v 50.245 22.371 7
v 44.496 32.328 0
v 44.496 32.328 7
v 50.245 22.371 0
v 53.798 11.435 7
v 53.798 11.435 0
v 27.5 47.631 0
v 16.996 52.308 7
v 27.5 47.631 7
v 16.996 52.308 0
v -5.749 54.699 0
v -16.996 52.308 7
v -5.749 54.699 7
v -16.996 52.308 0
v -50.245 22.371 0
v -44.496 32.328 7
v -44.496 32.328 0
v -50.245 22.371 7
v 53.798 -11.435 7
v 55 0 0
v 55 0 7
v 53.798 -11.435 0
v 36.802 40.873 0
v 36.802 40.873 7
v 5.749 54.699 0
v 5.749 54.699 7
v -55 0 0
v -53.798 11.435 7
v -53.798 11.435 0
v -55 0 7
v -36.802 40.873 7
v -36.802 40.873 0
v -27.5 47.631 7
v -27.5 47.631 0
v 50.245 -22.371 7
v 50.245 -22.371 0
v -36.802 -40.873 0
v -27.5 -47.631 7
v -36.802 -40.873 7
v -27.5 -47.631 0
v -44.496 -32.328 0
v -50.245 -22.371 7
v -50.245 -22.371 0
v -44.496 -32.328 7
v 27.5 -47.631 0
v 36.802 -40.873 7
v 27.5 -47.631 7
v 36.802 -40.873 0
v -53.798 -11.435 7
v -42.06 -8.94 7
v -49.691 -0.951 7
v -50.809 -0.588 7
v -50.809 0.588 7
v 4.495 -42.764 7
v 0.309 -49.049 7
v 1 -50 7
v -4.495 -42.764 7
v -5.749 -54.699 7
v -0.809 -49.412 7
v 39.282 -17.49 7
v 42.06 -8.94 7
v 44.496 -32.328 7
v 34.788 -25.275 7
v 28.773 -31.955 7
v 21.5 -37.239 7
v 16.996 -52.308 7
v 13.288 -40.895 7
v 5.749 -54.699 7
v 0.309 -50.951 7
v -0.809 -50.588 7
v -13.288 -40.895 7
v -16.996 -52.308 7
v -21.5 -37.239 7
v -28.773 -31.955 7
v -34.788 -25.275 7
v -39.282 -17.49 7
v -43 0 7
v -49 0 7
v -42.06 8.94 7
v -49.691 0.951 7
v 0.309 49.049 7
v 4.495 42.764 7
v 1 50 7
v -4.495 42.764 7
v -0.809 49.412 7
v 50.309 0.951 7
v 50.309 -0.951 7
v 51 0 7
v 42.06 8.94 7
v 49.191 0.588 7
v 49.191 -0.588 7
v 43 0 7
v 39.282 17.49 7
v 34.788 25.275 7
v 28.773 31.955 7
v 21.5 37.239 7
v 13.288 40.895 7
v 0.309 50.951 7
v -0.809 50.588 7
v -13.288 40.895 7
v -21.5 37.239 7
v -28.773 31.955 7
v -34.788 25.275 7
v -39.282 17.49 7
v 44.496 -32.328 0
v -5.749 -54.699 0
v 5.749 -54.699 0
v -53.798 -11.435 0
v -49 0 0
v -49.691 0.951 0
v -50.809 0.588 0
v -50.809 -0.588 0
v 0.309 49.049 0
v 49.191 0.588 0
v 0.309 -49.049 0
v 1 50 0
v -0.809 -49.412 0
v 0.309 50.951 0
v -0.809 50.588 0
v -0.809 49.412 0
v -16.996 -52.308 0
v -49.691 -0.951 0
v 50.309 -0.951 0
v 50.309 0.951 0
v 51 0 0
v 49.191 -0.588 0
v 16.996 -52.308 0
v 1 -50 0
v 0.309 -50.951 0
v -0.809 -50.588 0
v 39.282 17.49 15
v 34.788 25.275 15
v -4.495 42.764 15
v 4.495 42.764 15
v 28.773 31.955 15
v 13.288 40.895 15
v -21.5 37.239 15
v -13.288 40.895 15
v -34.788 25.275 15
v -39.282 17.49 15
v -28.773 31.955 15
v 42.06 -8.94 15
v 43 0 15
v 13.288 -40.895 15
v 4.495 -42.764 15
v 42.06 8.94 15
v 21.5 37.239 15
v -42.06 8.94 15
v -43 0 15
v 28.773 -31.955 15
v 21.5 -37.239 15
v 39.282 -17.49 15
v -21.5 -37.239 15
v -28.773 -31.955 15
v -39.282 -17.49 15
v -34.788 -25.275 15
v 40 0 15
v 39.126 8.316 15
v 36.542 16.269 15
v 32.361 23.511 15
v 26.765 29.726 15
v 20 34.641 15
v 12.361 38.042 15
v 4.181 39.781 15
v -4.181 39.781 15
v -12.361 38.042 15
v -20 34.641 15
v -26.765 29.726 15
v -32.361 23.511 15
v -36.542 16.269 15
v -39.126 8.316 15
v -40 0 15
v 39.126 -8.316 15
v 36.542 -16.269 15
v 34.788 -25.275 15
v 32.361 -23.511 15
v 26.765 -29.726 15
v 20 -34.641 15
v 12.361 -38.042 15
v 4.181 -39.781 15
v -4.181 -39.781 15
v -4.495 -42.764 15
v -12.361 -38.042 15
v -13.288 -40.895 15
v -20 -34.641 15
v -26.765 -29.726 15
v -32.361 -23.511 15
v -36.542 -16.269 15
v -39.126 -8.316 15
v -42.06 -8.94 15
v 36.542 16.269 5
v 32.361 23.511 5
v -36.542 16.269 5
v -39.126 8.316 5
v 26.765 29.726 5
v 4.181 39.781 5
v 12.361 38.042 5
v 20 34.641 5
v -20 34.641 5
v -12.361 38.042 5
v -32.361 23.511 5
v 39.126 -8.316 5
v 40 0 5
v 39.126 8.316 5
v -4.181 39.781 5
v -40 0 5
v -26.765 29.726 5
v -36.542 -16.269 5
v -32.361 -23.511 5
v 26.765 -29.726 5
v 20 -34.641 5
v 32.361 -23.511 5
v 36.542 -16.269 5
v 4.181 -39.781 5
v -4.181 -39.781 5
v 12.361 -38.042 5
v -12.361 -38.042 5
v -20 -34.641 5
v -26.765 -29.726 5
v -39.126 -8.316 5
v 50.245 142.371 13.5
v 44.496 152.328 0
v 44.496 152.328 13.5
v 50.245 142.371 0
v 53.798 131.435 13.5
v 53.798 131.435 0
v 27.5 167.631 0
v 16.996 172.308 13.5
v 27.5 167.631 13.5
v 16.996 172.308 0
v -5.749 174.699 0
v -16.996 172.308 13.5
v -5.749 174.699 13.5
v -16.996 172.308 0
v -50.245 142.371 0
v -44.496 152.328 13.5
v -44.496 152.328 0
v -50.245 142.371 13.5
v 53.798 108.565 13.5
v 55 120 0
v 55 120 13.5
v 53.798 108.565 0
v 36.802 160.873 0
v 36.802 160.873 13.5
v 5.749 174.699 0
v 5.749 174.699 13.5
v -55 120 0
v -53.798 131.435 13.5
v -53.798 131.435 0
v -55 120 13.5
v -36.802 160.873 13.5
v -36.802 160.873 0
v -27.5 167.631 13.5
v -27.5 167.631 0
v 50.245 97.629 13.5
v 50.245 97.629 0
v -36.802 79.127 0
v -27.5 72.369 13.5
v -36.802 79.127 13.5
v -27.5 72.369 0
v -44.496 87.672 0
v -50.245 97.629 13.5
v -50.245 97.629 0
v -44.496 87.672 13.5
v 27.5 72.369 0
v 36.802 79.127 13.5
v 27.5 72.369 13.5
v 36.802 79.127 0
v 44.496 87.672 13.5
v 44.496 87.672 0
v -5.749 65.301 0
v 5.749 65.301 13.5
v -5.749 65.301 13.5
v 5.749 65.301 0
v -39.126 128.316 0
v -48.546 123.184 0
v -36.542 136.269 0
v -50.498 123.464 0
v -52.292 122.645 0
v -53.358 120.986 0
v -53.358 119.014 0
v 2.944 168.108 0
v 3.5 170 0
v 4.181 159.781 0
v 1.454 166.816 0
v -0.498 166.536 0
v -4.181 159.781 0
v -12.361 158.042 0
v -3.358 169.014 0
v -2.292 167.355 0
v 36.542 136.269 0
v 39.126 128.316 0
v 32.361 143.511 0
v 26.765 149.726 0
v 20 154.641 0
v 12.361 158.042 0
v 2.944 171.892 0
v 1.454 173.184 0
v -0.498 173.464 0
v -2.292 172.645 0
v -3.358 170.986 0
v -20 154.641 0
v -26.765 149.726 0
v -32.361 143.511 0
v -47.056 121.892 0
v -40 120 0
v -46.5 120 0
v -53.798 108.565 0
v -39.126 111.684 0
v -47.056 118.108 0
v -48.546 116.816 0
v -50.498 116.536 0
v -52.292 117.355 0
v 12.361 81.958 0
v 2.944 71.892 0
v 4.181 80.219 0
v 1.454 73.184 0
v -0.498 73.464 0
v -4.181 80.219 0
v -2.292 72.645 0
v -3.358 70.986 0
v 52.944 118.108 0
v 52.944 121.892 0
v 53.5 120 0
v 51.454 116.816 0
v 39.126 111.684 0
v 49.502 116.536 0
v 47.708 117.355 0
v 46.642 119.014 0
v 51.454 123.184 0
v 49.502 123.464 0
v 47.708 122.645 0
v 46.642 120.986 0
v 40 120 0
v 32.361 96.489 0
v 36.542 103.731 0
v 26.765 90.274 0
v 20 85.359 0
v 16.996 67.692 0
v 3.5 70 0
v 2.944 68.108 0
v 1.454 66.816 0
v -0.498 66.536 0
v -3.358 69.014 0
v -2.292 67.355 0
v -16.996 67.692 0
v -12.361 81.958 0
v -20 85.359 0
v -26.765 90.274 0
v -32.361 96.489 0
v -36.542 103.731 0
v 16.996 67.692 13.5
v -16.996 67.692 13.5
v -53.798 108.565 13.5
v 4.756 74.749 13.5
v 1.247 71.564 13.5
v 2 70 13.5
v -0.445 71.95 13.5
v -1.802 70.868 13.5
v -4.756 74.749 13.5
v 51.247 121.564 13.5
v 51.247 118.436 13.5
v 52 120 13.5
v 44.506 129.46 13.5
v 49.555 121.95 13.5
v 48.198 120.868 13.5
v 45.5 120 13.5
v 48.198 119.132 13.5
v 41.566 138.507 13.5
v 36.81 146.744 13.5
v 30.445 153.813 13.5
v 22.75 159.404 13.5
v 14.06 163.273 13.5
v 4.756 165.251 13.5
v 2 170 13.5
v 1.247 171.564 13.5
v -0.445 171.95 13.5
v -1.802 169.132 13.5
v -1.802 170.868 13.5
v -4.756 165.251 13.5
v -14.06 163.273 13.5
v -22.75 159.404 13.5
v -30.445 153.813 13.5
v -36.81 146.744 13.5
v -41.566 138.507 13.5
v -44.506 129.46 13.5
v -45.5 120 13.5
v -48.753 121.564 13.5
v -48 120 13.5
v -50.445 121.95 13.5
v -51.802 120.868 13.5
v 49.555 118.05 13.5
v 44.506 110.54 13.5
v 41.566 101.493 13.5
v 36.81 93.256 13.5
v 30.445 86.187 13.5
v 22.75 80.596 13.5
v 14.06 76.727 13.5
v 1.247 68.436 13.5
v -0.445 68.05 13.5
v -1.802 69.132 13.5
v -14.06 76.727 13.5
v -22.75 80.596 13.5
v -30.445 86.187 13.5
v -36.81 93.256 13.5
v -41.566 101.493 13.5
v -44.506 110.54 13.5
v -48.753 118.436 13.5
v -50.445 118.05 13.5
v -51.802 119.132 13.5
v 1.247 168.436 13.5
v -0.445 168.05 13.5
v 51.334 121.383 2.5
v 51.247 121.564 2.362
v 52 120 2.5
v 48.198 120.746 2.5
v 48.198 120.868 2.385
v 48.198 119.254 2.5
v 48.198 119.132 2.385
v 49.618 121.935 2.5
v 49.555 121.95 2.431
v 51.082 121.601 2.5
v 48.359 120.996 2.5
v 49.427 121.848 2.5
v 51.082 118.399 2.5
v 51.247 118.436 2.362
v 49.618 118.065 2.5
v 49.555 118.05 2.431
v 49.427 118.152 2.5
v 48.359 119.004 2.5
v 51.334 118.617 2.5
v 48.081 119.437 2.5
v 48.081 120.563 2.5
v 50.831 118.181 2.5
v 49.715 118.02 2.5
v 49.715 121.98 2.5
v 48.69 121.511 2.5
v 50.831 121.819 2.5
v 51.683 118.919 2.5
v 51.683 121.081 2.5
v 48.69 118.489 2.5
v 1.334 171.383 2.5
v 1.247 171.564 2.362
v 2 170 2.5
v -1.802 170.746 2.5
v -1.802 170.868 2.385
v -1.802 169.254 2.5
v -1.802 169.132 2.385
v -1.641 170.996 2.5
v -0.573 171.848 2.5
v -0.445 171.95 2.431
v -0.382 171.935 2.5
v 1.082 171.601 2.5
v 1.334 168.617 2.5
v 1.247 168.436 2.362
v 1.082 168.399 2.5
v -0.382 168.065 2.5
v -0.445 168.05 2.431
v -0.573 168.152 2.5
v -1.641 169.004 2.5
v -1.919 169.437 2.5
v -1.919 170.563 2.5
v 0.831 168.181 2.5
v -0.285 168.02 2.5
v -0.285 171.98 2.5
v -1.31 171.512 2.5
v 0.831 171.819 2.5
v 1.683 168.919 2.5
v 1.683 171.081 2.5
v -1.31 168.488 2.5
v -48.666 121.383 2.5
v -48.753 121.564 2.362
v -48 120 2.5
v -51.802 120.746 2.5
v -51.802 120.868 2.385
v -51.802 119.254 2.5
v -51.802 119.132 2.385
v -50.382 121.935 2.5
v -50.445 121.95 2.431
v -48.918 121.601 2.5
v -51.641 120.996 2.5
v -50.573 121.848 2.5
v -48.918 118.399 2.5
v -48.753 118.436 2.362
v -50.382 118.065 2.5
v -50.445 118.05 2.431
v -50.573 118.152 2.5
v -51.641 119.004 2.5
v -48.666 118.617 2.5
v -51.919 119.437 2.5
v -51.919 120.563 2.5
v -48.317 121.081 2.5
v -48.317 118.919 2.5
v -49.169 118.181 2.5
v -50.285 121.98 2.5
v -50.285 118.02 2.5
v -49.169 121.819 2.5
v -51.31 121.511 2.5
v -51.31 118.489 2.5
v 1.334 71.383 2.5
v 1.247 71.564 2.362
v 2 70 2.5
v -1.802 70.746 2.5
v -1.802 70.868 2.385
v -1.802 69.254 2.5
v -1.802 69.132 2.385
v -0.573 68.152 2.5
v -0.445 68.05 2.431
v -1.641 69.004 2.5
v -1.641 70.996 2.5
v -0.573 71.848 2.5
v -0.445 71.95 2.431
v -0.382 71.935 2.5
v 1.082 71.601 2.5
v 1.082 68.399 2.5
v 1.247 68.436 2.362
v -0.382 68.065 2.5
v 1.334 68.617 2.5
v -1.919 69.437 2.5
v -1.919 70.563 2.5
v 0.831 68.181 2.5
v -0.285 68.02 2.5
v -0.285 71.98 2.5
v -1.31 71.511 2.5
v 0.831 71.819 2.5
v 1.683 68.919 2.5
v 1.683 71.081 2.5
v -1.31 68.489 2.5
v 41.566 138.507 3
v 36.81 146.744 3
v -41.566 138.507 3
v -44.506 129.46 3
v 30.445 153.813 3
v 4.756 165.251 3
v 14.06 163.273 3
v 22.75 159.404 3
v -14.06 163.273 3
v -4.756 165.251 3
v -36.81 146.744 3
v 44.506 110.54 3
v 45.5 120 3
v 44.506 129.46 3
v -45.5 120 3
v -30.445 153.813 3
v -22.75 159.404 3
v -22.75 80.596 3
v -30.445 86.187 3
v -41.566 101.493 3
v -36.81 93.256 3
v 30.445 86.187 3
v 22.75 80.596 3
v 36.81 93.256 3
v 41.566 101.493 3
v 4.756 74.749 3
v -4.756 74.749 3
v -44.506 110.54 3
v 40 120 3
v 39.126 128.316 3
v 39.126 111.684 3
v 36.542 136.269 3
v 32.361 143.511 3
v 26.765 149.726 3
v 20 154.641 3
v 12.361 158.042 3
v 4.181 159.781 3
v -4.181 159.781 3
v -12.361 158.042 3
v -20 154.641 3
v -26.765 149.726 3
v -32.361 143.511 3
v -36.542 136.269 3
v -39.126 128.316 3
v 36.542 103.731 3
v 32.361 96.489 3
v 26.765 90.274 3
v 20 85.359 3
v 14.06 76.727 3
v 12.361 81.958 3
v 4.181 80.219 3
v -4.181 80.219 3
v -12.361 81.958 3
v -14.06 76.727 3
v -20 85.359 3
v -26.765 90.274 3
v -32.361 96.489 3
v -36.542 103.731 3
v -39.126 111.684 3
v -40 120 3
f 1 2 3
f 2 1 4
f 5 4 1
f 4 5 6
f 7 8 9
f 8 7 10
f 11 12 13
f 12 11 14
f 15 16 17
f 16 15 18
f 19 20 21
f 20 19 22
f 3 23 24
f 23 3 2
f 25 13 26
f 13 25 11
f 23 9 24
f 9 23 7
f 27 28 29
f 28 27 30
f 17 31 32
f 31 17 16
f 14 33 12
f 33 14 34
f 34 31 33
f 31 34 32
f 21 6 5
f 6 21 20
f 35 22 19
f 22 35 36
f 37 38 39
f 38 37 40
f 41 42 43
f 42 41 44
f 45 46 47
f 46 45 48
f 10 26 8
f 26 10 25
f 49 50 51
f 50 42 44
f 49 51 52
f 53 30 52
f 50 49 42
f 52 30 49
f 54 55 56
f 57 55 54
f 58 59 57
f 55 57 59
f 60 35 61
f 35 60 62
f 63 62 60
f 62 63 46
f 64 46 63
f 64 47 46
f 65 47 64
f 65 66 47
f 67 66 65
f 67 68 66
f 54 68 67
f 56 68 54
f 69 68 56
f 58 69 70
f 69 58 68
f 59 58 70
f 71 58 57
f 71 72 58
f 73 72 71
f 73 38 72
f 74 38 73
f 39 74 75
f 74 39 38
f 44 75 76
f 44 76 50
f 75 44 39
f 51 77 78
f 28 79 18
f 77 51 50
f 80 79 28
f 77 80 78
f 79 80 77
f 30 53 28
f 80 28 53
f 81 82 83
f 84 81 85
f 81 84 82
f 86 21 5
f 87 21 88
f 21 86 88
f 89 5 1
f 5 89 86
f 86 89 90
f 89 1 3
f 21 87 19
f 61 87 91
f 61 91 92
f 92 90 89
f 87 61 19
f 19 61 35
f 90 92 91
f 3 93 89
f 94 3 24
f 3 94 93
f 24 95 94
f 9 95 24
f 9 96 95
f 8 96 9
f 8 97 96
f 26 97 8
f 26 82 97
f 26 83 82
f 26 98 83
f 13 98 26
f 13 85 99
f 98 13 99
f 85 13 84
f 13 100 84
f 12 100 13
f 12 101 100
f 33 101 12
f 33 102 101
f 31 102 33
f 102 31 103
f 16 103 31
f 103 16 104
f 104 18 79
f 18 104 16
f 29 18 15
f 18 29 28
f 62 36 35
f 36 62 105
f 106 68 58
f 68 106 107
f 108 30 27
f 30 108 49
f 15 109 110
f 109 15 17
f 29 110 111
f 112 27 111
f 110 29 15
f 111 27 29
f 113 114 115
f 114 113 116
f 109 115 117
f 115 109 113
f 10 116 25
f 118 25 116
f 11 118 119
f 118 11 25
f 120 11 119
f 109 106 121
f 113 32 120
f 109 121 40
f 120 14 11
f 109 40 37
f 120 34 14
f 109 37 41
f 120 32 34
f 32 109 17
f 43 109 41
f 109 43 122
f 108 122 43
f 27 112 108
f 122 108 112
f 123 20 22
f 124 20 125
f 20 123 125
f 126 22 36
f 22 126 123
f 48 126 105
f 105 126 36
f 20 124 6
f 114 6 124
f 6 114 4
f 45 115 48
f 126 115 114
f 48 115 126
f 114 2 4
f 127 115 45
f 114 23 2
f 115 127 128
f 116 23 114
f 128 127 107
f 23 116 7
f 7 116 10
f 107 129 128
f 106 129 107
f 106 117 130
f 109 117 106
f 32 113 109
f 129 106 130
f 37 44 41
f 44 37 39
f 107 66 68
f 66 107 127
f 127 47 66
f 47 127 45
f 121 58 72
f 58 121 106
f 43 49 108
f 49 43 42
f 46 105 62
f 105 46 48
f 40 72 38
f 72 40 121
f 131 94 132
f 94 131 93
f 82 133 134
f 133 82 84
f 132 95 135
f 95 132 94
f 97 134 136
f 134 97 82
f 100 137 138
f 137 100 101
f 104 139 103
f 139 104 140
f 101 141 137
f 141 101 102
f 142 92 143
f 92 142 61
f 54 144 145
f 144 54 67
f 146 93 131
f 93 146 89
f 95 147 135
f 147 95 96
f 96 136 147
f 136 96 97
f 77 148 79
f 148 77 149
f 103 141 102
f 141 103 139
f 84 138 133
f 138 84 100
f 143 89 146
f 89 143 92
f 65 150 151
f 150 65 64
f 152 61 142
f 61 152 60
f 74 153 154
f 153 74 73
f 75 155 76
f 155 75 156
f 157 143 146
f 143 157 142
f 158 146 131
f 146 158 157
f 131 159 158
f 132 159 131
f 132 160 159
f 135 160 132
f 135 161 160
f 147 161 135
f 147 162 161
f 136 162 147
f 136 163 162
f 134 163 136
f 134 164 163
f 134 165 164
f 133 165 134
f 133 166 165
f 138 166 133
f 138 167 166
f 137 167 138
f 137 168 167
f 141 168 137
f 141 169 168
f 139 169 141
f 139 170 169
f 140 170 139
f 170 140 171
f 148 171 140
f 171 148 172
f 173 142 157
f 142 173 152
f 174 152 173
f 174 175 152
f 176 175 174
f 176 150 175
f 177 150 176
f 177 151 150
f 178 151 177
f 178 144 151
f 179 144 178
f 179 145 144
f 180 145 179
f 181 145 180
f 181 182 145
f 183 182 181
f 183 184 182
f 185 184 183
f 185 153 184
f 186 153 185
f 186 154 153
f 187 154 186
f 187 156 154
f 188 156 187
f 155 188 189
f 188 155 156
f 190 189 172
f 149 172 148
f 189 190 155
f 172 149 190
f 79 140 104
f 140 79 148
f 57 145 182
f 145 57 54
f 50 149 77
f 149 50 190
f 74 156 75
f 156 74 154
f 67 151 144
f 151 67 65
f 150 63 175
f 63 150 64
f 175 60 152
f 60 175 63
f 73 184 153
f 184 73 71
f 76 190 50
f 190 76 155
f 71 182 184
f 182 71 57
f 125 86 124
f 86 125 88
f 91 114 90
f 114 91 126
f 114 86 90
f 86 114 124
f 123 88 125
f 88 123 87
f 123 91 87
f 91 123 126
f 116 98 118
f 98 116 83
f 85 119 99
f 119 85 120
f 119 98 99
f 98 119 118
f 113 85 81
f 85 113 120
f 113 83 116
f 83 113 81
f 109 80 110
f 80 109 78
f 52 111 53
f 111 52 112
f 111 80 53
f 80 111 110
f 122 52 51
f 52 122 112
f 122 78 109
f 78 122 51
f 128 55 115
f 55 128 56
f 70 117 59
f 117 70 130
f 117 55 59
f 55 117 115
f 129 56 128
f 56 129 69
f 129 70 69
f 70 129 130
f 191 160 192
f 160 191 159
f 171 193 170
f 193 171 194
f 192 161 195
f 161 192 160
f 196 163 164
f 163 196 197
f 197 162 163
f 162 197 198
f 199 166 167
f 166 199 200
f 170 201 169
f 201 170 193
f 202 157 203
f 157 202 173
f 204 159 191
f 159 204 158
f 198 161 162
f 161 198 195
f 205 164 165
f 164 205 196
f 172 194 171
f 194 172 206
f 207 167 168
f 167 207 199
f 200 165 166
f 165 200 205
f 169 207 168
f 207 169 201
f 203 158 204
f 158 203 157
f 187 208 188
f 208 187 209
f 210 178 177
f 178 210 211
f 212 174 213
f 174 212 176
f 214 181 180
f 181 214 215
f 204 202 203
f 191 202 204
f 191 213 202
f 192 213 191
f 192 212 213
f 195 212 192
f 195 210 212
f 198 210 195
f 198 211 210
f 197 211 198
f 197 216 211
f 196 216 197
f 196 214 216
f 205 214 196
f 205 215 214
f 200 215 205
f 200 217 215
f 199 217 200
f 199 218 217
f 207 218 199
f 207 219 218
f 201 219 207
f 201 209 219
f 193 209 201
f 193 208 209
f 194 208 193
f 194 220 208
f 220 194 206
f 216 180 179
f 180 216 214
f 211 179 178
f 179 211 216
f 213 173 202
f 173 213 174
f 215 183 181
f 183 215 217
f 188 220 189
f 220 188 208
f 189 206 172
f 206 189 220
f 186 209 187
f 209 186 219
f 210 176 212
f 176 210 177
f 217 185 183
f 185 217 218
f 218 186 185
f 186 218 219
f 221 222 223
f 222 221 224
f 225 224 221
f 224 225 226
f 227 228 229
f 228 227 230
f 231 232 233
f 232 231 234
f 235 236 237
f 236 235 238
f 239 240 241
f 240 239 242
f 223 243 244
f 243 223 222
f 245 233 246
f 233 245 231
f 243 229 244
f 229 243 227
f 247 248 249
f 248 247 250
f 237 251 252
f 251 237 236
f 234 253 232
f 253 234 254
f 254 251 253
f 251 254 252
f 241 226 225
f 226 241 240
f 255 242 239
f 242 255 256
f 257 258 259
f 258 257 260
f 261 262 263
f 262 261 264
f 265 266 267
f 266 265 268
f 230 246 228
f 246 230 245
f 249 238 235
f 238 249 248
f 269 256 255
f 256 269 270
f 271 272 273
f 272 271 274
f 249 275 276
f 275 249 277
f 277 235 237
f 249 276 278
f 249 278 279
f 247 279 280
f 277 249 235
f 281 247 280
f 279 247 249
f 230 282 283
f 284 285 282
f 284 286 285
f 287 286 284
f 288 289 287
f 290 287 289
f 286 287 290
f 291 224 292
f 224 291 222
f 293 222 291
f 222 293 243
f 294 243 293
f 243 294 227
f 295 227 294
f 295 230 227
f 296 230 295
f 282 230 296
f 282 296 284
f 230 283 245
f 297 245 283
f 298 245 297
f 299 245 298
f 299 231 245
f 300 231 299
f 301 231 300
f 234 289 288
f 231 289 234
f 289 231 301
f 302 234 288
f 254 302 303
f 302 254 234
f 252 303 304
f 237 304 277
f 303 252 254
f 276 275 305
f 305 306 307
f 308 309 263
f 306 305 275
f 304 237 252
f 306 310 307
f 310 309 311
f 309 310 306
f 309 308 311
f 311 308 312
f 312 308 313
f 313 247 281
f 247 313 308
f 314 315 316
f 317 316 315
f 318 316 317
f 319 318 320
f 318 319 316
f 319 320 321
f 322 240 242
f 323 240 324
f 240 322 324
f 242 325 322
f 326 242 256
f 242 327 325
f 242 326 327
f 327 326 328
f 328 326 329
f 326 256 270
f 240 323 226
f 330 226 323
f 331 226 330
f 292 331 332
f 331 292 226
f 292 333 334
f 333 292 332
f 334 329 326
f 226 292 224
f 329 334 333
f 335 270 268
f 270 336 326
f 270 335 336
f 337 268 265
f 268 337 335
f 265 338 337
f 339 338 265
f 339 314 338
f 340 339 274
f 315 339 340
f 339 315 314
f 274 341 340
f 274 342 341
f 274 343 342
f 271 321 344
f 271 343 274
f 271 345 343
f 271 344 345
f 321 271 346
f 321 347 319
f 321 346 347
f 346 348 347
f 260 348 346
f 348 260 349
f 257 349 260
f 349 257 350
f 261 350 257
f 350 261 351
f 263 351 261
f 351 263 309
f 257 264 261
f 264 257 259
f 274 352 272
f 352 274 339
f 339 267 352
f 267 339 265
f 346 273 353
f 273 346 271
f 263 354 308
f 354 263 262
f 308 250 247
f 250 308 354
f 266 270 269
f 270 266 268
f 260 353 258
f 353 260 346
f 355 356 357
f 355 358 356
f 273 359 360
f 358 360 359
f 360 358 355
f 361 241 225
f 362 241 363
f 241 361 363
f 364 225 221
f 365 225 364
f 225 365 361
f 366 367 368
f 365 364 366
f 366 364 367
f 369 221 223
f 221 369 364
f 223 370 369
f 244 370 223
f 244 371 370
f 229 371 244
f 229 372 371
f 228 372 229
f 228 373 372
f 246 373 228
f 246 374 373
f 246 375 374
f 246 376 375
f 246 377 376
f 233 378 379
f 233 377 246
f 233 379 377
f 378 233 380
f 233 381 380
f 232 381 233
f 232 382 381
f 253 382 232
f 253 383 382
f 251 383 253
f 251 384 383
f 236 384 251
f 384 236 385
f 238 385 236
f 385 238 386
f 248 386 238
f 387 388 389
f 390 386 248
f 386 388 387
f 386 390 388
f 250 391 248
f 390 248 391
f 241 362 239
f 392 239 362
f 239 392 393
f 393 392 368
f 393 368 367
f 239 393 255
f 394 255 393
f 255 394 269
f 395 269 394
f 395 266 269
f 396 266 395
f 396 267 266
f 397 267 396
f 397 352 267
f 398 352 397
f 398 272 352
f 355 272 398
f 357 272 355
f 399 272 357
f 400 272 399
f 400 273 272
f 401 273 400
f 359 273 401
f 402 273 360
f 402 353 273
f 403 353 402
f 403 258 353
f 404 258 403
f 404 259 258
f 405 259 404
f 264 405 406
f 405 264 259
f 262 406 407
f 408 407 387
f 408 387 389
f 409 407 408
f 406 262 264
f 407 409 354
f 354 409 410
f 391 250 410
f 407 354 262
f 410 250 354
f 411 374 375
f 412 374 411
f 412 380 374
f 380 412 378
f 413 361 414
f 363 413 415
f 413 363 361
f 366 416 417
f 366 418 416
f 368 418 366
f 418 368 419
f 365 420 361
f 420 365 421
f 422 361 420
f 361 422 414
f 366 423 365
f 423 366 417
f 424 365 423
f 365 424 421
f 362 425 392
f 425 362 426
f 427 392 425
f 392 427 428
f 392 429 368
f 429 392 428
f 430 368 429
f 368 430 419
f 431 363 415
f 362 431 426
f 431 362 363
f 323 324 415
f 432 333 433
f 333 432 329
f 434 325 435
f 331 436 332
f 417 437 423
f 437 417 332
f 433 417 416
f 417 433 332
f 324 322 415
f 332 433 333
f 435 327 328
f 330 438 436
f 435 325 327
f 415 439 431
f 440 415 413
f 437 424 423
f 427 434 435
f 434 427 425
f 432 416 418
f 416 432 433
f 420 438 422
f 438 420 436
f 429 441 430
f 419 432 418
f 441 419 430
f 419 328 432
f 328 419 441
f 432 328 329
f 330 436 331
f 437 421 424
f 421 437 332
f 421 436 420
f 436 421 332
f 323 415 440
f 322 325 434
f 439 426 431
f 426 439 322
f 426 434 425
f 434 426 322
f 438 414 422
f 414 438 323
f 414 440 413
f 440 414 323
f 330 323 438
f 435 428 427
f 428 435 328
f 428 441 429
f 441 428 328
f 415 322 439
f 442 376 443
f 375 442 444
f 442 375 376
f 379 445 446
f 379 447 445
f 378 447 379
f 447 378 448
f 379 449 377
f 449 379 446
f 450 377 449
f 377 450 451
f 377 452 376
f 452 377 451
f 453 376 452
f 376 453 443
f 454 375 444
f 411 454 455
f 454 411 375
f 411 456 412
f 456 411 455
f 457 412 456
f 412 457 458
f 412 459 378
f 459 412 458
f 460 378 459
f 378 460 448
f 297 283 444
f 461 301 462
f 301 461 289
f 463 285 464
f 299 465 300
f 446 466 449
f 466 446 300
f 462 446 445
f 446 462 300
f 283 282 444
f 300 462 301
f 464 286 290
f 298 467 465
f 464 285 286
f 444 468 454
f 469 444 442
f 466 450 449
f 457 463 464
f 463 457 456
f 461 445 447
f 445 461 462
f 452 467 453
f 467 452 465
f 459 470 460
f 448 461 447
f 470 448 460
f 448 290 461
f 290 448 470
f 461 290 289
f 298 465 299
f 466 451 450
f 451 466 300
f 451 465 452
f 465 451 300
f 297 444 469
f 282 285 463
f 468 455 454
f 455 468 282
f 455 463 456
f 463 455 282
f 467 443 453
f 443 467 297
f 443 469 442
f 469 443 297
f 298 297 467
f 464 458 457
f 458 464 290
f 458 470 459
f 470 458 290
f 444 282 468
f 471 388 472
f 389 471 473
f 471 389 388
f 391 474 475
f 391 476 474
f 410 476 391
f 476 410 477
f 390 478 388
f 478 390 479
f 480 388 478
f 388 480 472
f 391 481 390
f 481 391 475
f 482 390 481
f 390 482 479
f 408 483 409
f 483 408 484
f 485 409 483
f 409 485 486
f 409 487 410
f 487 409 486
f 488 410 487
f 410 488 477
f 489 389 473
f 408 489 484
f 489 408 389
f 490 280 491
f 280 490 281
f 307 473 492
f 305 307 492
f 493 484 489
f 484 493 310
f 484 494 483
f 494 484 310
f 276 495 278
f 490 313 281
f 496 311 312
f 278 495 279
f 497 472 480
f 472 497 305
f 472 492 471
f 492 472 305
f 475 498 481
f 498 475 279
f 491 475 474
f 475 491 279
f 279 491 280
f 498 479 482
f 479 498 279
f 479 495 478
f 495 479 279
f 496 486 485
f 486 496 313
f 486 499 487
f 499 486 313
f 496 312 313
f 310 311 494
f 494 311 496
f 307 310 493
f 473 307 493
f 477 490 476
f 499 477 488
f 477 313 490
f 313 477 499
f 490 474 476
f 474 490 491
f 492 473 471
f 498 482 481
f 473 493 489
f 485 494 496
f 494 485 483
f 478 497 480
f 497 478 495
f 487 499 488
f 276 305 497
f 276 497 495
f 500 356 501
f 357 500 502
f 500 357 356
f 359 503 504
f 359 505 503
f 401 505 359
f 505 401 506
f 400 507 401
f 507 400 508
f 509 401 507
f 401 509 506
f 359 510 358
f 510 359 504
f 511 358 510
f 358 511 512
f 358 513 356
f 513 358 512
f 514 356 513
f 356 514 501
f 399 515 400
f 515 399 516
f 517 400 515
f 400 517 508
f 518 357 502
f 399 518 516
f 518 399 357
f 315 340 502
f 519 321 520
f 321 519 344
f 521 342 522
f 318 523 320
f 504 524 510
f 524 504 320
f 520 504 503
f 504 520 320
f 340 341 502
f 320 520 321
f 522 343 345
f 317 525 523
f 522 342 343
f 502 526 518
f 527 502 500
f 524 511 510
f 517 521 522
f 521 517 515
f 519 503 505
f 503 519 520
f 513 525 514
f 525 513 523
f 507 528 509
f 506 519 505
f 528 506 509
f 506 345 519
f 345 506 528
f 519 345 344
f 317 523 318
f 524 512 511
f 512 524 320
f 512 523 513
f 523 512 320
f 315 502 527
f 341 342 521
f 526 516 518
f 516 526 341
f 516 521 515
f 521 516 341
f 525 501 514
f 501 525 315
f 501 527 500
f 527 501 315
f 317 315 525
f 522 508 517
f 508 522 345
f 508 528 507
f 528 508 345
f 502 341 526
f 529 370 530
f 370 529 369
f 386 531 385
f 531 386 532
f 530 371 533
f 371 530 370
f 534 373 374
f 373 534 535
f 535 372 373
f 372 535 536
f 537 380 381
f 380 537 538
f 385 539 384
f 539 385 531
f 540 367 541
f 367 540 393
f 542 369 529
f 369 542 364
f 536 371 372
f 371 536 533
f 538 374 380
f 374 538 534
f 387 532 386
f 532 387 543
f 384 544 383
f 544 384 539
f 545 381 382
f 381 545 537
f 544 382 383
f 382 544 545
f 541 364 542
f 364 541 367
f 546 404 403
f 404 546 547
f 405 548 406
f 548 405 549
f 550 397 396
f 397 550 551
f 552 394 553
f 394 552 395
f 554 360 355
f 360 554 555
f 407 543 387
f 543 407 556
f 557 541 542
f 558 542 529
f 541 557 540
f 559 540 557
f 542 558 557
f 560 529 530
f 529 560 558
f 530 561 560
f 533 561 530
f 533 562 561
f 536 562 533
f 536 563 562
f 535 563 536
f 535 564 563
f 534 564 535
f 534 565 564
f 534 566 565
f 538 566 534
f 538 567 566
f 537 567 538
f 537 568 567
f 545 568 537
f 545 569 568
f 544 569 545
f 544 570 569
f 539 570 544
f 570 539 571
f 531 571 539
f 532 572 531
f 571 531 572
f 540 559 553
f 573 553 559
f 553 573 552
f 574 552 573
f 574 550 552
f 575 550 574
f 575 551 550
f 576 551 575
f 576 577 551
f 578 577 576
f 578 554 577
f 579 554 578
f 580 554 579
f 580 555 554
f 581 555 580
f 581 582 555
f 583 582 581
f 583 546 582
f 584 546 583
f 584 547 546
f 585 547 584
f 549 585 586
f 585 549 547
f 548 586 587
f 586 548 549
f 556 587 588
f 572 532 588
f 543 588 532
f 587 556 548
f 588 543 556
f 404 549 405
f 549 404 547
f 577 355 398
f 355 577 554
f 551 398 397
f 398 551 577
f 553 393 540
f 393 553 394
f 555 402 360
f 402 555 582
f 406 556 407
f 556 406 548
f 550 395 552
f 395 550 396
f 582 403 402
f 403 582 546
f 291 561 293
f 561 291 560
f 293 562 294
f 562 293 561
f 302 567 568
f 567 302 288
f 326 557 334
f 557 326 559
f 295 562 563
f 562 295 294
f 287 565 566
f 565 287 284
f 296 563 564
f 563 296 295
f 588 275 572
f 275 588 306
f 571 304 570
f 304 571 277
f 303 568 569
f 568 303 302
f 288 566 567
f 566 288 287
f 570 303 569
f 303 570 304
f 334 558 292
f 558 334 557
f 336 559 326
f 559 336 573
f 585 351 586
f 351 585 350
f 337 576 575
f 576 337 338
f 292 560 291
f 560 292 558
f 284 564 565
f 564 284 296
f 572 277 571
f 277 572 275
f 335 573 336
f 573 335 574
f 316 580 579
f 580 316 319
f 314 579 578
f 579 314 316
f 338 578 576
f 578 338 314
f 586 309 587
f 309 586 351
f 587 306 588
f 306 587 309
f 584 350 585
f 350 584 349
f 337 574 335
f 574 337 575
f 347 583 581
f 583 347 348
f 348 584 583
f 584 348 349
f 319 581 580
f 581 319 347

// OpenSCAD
// Parametry kasety
outer_diameter = 110;
inner_diameter = 80;
outer_radius = outer_diameter / 2;
inner_radius = inner_diameter / 2;
height = 15;
bottom_thickness = 5;
reduction_height = 8;
reduced_outer_diameter = 86;
reduced_outer_radius = reduced_outer_diameter / 2;
wall_thickness = outer_radius - inner_radius;
reduced_inner_radius = reduced_outer_radius - wall_thickness;
hole_diameter = 2;
hole_radius = hole_diameter / 2;
hole_radius_from_center = outer_radius - 5;
num_holes = 4;

// Główna kaseta
difference() {
    // Część zewnętrzna
    union() {
        // Cylinder dolny (stała średnica)
        cylinder(h = height - reduction_height, r = outer_radius, center = false);
        
        // Część ze zmniejszoną średnicą (skokowo)
        translate([0, 0, height - reduction_height])
            cylinder(h = reduction_height, r = reduced_outer_radius, center = false);
    }
    
    // Wyjęcie wewnętrzne (wnęka)
    translate([0, 0, bottom_thickness])
        cylinder(h = height - bottom_thickness, r = inner_radius, center = false);
    
    // Cztery otwory rozmieszczone równomiernie
    for (i = [0:num_holes-1]) {
        angle = i * 360 / num_holes;
        translate([hole_radius_from_center * cos(angle), hole_radius_from_center * sin(angle), -0.5])
            cylinder(h = height + 1, r = hole_radius, center = false);
    }
}

// Parametry pokrywki
cover_outer_diameter = 110;
cover_outer_radius = cover_outer_diameter / 2;
cover_inner_diameter = 91;  // 86 + 5 = 91
cover_inner_radius = cover_inner_diameter / 2;
cover_top_thickness = 3;
cover_inner_depth = 10.5;
cover_total_height = cover_top_thickness + cover_inner_depth;
cover_hole_diameter = 4;
cover_hole_radius = cover_hole_diameter / 2;
countersink_diameter = 7;
countersink_radius = countersink_diameter / 2;
countersink_depth = 2;
top_hole_diameter = 80;
top_hole_radius = top_hole_diameter / 2;
cover_hole_radius_from_center = 50;

// Pokrywka
translate([0, 120, 0]) {
    difference() {
        // Część stała pokrywki
        union() {
            // Górna część (płaska)
            cylinder(h = cover_top_thickness, r = cover_outer_radius, center = false);
            
            // Dolna część (ścianki)
            translate([0, 0, cover_top_thickness])
                cylinder(h = cover_inner_depth, r = cover_outer_radius, center = false);
        }
        
        // Wewnętrzna wnęka
        translate([0, 0, cover_top_thickness])
            cylinder(h = cover_inner_depth, r = cover_inner_radius, center = false);
        
        // Okrągły otwór z góry (80mm)
        translate([0, 0, -0.5])
            cylinder(h = cover_top_thickness + 1, r = top_hole_radius, center = false);
        
        // Cztery otwory do wkrętów
        for (i = [0:num_holes-1]) {
            angle = i * 360 / num_holes;
            x = cover_hole_radius_from_center * cos(angle);
            y = cover_hole_radius_from_center * sin(angle);
            
            // Otwór główny: 4mm średnicy na większości długości
            translate([x, y, 0])
                cylinder(h = cover_total_height, r = cover_hole_radius, center = false);
            
            // Pogłębienie stożkowe: na ostatnich 2.5mm zmienia się od 4mm do 7mm
            translate([x, y, 0])
                cylinder(h = 2.5, r1 = countersink_radius, r2 = cover_hole_radius, center = false);
        }
    }
}
